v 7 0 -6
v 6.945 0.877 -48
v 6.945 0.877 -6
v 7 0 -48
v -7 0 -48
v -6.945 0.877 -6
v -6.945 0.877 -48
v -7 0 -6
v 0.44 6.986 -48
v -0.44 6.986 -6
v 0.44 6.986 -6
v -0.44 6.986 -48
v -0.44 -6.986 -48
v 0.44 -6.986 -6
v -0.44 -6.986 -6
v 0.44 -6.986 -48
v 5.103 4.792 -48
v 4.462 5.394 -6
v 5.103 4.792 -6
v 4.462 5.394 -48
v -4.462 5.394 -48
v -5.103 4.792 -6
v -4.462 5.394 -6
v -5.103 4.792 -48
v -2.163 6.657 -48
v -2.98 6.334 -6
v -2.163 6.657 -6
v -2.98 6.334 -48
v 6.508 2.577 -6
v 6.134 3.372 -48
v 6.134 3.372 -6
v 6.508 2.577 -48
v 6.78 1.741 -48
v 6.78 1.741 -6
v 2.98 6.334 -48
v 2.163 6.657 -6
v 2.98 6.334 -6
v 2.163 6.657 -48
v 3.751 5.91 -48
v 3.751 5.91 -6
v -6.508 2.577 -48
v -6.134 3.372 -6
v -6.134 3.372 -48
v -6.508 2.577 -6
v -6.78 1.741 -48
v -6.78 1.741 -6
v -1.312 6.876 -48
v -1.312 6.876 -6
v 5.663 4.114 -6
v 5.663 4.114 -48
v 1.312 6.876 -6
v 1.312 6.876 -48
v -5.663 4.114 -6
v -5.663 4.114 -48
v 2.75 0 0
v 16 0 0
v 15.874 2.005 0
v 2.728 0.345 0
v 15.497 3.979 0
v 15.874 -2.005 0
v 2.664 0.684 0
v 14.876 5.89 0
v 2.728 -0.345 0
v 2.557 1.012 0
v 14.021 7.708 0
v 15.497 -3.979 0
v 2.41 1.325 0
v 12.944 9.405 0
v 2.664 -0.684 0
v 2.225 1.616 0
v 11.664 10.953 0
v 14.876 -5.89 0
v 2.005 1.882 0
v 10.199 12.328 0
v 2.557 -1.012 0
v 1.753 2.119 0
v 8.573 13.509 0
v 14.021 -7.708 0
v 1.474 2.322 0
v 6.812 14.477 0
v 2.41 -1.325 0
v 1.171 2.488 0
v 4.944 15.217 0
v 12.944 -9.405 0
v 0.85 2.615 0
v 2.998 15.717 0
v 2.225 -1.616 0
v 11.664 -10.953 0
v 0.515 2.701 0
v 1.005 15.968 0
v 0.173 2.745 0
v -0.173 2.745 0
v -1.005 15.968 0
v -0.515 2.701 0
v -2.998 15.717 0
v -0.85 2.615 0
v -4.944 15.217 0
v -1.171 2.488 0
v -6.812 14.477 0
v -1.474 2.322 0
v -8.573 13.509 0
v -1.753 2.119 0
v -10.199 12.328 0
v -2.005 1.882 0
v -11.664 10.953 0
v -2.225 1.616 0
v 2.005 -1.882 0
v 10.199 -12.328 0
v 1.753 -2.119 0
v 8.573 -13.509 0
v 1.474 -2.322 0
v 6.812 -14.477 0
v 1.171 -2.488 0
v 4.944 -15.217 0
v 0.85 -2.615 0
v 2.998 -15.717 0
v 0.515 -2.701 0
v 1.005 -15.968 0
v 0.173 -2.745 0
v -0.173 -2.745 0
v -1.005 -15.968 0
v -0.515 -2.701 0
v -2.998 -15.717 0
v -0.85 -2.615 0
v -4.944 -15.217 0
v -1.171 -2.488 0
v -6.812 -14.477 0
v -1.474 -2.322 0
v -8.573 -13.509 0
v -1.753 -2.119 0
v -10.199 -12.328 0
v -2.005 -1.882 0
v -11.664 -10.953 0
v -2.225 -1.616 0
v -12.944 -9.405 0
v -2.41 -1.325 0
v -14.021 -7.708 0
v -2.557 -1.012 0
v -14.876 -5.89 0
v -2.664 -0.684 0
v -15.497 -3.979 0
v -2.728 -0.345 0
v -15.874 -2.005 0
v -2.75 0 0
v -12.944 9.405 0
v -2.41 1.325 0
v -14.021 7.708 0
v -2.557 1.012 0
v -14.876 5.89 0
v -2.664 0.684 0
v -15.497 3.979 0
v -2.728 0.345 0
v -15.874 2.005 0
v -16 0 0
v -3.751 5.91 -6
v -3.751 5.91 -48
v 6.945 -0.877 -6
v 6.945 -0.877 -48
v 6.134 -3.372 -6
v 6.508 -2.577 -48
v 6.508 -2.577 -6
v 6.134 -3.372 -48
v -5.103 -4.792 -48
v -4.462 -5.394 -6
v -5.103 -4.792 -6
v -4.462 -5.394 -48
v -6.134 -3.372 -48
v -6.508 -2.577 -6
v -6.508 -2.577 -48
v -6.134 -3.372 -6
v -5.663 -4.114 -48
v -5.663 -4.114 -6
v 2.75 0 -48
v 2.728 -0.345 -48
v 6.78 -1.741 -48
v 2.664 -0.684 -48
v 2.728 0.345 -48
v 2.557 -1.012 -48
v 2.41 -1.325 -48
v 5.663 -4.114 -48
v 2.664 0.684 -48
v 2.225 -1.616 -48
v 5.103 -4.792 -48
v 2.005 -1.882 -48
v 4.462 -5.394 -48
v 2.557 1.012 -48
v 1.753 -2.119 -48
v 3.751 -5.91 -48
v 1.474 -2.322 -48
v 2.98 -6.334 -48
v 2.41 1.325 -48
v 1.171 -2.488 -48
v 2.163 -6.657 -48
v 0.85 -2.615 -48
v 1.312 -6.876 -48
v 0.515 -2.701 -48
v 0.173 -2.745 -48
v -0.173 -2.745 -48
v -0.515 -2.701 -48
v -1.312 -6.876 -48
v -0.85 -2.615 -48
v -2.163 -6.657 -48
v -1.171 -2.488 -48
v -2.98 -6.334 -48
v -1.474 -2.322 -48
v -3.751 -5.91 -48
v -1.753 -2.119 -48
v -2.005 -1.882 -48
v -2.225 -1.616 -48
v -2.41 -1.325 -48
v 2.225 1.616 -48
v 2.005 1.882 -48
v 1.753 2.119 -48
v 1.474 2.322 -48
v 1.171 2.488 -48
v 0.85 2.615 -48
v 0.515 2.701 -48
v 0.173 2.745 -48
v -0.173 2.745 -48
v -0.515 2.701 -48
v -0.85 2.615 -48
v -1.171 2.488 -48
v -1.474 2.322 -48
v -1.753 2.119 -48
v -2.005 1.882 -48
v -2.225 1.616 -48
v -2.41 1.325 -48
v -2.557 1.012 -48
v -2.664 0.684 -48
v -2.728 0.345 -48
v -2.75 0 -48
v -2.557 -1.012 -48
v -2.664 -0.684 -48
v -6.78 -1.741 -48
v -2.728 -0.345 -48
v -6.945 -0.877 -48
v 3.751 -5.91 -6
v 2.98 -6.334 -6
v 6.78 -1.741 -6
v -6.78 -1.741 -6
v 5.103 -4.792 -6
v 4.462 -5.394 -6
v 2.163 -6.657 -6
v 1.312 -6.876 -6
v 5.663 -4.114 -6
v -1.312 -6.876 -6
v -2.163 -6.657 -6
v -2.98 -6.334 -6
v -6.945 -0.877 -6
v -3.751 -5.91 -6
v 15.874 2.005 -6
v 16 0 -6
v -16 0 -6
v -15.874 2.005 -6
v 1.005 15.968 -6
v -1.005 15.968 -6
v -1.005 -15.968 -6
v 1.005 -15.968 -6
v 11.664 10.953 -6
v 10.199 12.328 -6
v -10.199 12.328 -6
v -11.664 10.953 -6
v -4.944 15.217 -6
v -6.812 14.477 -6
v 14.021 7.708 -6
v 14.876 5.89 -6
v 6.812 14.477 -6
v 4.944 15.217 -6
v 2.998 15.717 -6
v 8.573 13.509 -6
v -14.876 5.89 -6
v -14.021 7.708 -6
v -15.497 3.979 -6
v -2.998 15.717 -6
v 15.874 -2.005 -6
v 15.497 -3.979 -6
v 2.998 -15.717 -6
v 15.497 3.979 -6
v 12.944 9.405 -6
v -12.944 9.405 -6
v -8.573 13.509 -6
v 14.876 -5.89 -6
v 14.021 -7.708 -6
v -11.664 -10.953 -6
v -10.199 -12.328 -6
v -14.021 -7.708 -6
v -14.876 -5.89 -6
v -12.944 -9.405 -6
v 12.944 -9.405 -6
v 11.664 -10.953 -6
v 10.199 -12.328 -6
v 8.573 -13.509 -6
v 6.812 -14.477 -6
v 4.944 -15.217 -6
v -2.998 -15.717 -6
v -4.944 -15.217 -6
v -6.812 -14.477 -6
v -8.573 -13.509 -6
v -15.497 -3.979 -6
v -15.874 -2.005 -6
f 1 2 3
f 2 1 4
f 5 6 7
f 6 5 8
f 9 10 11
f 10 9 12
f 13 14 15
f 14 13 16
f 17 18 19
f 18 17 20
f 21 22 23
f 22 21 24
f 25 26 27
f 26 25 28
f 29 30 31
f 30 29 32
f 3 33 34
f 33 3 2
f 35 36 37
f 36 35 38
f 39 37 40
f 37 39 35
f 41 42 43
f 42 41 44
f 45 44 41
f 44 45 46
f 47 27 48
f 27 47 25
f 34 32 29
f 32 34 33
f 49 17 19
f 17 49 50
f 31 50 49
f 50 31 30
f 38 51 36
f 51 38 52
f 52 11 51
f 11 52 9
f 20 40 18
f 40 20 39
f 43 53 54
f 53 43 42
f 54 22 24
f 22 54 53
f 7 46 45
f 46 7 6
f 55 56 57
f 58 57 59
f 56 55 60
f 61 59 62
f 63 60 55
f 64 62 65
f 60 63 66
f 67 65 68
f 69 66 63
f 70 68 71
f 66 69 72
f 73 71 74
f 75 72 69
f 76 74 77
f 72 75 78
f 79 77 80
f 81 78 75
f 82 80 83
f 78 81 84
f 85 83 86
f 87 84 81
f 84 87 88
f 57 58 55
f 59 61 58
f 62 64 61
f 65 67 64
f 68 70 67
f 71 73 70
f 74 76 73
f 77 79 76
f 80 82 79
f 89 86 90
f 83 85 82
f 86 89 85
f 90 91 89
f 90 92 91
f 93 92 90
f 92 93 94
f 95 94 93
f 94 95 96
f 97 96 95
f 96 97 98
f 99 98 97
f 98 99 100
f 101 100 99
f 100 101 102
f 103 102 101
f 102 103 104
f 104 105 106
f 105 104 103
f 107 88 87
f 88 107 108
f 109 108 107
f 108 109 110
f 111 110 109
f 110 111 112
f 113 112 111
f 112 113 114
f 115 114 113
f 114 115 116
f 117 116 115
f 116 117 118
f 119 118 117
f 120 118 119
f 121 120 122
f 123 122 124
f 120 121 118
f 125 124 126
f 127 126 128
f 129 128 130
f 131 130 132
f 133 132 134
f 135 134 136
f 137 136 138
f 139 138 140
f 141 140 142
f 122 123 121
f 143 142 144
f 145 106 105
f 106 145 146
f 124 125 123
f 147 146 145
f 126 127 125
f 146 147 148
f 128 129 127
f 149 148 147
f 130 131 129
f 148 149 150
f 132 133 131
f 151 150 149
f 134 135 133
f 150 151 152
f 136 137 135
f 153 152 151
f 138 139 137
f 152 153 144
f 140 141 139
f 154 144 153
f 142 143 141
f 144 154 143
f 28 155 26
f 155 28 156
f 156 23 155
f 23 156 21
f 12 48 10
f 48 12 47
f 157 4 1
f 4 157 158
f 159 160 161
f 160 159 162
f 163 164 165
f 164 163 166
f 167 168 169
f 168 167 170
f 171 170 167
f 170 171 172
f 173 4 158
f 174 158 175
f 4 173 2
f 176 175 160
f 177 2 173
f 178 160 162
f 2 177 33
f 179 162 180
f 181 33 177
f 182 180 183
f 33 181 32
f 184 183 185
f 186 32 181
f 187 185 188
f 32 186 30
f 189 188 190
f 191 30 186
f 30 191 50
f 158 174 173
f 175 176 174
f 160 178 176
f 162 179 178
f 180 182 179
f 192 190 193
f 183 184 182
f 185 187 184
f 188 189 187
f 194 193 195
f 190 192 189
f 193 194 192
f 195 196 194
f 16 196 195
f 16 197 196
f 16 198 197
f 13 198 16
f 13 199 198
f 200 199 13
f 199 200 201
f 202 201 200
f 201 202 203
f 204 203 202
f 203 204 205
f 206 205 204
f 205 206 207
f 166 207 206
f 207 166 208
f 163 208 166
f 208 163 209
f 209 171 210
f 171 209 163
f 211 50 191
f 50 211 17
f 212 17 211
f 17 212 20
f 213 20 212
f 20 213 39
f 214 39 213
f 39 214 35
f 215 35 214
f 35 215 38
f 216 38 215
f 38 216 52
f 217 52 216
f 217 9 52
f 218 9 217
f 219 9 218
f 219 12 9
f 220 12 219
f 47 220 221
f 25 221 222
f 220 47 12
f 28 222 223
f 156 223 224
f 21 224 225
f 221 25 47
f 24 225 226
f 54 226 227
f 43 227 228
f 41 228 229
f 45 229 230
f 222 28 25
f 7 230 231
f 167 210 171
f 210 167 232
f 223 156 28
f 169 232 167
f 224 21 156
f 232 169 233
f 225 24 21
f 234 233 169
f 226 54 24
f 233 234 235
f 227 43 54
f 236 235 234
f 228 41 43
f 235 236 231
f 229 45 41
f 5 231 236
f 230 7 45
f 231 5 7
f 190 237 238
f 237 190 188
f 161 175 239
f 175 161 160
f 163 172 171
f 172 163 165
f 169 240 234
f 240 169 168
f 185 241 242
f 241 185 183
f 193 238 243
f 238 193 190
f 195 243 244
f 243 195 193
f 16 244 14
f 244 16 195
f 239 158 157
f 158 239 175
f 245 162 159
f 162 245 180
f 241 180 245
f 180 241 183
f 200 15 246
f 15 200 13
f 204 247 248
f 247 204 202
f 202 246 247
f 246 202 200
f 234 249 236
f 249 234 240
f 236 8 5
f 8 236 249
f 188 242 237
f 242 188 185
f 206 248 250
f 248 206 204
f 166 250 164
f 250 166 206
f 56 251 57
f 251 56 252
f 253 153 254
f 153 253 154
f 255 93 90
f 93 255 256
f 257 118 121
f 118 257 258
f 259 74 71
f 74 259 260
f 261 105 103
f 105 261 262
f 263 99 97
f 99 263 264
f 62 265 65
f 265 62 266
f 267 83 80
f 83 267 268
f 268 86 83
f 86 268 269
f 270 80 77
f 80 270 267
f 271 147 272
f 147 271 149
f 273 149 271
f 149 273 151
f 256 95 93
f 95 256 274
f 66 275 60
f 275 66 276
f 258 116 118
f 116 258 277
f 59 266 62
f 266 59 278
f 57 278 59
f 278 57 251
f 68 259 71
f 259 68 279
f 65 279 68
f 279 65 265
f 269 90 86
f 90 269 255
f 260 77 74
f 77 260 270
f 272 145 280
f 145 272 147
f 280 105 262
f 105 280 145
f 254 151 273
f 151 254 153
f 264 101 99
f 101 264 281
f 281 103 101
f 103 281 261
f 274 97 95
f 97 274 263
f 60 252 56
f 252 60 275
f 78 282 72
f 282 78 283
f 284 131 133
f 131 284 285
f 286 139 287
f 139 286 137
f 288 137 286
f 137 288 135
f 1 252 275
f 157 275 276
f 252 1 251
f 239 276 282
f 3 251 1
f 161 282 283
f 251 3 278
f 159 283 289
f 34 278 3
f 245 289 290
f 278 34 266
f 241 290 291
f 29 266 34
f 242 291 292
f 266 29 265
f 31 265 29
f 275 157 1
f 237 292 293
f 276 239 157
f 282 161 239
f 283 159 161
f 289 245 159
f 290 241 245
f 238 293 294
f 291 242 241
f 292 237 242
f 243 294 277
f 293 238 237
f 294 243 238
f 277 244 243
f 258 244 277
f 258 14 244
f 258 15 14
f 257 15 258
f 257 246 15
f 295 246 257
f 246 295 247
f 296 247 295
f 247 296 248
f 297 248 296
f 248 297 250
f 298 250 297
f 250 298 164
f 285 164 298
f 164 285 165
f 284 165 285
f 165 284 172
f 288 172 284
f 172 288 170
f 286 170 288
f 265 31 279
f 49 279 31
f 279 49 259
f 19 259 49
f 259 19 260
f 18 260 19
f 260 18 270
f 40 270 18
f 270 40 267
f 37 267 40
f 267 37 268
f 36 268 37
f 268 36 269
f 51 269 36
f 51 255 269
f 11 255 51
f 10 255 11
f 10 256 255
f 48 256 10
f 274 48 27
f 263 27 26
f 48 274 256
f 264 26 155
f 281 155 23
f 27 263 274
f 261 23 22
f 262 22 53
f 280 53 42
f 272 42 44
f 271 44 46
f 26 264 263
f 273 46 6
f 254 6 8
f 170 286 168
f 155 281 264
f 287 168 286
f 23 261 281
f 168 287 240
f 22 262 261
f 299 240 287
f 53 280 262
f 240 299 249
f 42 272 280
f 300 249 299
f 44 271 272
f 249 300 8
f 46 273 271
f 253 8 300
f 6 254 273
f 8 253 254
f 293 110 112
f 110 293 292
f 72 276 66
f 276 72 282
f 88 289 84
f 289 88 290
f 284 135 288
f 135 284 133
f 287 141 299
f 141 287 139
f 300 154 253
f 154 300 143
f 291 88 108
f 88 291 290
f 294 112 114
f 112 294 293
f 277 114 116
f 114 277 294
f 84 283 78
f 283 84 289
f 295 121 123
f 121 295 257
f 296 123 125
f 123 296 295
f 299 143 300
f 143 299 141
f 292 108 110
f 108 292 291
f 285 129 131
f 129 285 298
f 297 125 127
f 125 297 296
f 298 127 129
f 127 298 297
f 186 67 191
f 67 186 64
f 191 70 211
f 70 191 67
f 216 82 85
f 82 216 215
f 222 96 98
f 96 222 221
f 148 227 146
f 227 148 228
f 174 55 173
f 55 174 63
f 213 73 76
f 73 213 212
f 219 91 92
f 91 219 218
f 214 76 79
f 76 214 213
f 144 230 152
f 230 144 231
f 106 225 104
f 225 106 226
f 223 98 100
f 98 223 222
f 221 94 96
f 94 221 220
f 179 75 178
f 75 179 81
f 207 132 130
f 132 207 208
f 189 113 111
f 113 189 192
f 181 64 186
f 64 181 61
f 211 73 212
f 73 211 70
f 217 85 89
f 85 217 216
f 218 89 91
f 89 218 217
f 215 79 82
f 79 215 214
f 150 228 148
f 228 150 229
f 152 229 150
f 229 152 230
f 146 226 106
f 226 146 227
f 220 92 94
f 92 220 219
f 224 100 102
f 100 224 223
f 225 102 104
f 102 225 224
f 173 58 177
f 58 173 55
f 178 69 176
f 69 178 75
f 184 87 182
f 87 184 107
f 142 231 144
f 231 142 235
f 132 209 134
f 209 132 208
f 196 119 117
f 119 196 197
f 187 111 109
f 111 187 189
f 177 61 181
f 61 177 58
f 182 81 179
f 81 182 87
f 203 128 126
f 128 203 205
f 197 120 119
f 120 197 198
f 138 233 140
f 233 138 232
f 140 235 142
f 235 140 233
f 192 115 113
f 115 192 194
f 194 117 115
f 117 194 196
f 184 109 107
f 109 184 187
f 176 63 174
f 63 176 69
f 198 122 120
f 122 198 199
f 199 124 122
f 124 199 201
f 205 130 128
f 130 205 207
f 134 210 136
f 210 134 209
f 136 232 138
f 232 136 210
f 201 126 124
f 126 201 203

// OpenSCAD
$fn = 50;


difference() {
	union() {
		translate(v = [0, 0, -48.0000000000]) {
			cylinder(h = 48, r = 7.0000000000);
		}
		translate(v = [0, 0, -6.0000000000]) {
			cylinder(h = 6, r = 16.0000000000);
		}
	}
	union() {
		#translate(v = [0, 0, -48]) {
			cylinder(h = 48, r = 2.7500000000);
		}
	}
}
